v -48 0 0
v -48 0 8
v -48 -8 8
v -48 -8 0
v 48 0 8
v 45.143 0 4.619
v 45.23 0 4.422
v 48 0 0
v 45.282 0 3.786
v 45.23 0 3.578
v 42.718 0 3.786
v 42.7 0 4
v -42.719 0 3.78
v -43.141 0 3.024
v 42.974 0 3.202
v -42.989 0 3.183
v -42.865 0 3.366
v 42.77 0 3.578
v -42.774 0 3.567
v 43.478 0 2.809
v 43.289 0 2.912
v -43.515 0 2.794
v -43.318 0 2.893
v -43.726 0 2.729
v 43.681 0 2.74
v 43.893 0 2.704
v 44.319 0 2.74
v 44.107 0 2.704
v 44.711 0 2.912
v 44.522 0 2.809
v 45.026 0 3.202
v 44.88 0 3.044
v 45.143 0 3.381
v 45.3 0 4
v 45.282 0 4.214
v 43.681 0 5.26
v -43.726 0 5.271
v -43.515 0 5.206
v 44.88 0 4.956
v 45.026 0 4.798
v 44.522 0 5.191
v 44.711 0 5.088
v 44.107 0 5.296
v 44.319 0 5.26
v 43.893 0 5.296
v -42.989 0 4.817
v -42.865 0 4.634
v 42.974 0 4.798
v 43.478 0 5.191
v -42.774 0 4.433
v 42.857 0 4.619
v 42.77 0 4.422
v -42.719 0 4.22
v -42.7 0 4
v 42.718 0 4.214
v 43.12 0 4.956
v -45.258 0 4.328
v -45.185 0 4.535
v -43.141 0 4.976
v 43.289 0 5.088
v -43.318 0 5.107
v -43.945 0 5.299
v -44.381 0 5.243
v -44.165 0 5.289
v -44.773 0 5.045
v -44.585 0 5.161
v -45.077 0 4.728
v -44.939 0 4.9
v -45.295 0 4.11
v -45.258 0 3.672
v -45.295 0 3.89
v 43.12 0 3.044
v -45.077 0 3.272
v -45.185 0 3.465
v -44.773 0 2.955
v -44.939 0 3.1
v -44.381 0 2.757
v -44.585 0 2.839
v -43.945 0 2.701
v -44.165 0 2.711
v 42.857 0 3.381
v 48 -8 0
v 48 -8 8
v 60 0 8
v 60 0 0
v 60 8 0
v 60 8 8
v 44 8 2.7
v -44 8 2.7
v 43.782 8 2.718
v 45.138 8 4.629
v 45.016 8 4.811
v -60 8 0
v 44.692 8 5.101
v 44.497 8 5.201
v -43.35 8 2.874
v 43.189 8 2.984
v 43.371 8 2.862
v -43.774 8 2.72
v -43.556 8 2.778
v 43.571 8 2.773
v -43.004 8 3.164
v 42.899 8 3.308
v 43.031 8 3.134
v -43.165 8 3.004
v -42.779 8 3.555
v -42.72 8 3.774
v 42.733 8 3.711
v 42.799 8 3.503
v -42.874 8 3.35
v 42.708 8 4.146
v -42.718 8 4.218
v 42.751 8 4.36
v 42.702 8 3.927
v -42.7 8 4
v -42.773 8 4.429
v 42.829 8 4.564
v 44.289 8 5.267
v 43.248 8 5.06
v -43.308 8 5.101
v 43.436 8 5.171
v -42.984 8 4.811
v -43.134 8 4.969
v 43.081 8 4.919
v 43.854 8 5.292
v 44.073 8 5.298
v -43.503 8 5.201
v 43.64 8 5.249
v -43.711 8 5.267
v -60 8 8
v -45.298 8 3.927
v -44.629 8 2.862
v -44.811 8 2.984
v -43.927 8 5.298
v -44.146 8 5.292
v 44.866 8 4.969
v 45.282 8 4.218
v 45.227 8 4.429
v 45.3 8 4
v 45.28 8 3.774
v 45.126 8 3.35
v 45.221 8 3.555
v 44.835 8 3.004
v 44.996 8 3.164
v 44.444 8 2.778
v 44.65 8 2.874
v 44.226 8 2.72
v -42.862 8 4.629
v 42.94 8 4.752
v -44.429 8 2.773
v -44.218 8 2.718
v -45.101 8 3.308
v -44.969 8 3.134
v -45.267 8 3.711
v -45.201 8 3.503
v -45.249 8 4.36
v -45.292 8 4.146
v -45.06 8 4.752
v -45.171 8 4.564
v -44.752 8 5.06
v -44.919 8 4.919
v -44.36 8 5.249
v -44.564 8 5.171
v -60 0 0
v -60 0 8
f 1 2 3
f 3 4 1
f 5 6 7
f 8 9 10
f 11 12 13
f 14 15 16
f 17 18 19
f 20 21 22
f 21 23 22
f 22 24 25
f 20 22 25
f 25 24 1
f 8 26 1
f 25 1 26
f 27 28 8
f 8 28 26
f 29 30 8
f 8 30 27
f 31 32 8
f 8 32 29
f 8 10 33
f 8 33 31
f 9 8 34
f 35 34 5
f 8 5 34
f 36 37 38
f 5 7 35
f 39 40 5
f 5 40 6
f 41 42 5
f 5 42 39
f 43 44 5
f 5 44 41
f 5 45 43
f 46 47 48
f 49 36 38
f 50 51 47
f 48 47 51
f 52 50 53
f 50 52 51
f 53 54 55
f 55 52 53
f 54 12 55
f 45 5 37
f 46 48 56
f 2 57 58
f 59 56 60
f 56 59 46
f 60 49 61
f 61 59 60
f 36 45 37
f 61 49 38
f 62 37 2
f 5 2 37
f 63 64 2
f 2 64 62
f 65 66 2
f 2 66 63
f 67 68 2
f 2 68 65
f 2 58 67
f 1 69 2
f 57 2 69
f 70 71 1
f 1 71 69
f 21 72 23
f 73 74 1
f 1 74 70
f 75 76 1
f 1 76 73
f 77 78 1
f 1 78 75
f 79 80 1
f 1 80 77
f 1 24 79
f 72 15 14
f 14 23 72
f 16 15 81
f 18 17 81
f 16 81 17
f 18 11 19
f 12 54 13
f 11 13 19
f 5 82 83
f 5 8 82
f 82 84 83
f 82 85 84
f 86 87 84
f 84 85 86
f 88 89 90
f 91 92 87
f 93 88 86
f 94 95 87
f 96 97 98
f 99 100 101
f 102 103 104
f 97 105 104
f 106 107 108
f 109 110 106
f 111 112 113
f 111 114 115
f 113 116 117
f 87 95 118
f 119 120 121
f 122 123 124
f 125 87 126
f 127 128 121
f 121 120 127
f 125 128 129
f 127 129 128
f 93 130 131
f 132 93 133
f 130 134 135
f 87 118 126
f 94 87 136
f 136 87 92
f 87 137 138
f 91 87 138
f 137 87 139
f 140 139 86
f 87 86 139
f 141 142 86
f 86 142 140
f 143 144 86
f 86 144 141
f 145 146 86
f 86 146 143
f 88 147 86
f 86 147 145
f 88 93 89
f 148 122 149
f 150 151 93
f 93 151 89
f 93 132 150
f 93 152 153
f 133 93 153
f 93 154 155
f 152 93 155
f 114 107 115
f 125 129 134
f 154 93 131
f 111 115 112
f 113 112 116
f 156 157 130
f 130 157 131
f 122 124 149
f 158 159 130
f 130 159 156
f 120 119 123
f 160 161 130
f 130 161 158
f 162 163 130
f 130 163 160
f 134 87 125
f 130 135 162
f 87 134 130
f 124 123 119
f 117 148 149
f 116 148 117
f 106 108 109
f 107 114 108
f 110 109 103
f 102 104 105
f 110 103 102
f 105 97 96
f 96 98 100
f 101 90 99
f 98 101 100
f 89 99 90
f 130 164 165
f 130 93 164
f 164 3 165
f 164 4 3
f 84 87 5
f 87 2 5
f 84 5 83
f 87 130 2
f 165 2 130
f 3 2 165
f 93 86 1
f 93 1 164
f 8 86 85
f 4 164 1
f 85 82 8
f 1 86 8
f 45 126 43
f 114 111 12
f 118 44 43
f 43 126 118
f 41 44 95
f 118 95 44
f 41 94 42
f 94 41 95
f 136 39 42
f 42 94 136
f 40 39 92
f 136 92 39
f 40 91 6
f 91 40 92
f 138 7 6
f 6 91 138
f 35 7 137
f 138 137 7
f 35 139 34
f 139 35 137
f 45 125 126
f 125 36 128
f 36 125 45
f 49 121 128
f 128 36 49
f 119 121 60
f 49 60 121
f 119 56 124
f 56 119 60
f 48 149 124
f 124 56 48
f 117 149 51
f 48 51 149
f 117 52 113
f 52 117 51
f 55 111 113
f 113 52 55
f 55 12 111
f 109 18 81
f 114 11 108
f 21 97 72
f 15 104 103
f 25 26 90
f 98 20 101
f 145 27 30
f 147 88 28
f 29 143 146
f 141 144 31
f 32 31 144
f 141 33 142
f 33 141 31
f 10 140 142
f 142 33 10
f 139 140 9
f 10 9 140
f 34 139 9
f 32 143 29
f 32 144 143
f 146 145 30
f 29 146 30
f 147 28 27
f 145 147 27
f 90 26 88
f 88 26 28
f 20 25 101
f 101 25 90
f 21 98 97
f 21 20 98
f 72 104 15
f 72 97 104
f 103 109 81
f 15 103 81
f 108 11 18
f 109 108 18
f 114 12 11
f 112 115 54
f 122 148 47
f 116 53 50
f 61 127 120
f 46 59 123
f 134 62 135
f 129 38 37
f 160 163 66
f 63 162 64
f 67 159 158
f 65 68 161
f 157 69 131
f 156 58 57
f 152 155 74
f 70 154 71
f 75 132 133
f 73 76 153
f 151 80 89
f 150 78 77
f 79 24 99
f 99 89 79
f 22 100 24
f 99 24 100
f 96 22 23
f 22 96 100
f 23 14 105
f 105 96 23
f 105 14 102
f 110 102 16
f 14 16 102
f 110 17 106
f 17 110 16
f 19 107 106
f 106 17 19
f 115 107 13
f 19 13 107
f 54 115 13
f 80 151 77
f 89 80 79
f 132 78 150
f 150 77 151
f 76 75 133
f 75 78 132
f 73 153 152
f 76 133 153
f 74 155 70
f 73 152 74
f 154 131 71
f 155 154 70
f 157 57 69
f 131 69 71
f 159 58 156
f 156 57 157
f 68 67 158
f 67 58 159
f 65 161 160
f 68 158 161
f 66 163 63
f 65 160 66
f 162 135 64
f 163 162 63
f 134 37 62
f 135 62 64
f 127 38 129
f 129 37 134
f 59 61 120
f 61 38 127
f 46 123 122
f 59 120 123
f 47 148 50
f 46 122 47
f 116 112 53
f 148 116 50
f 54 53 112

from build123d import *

# Parameters (mm, degrees)
BOSS_EXTRUDE1_DEPTH = 8
CUT_EXTRUDE1_REACH  = 63.057
SKETCH2_R           = 1.3


with BuildPart() as part:
    # Sketch1 → Boss-Extrude1 (new body)
    with BuildSketch(Plane(origin=(0, 0, 0), x_dir=(0, 1, 0), z_dir=(0, 0, 1))):
        Polygon((0, 48), (0, -48), (-8, -48), (0, -60), (8, -60), (8, 60), (0, 60), (-8, 48), align=None)
    extrude(amount=BOSS_EXTRUDE1_DEPTH)

    # Sketch2 → Cut-Extrude1 (cut, up to next)
    with BuildSketch(Plane.XZ, mode=Mode.PRIVATE) as cut_extrude1_sk1:
        with Locations((-44, 4)):
            Circle(SKETCH2_R)
    cut_extrude1_tool1 = extrude(cut_extrude1_sk1.sketch, amount=-CUT_EXTRUDE1_REACH, mode=Mode.PRIVATE) & part.part
    # Sketch2 → Cut-Extrude1 (cut, up to next)
    with BuildSketch(Plane.XZ, mode=Mode.PRIVATE) as cut_extrude1_sk2:
        with Locations(Location((44, 4, 0), (0, 0, 270))):
            Circle(SKETCH2_R)
    cut_extrude1_tool2 = extrude(cut_extrude1_sk2.sketch, amount=-CUT_EXTRUDE1_REACH, mode=Mode.PRIVATE) & part.part
    add(cut_extrude1_tool1.solids().sort_by_distance((-44, 0, 4))[0], mode=Mode.SUBTRACT)
    add(cut_extrude1_tool2.solids().sort_by_distance((44, 0, 4))[0], mode=Mode.SUBTRACT)


solid = part.part
